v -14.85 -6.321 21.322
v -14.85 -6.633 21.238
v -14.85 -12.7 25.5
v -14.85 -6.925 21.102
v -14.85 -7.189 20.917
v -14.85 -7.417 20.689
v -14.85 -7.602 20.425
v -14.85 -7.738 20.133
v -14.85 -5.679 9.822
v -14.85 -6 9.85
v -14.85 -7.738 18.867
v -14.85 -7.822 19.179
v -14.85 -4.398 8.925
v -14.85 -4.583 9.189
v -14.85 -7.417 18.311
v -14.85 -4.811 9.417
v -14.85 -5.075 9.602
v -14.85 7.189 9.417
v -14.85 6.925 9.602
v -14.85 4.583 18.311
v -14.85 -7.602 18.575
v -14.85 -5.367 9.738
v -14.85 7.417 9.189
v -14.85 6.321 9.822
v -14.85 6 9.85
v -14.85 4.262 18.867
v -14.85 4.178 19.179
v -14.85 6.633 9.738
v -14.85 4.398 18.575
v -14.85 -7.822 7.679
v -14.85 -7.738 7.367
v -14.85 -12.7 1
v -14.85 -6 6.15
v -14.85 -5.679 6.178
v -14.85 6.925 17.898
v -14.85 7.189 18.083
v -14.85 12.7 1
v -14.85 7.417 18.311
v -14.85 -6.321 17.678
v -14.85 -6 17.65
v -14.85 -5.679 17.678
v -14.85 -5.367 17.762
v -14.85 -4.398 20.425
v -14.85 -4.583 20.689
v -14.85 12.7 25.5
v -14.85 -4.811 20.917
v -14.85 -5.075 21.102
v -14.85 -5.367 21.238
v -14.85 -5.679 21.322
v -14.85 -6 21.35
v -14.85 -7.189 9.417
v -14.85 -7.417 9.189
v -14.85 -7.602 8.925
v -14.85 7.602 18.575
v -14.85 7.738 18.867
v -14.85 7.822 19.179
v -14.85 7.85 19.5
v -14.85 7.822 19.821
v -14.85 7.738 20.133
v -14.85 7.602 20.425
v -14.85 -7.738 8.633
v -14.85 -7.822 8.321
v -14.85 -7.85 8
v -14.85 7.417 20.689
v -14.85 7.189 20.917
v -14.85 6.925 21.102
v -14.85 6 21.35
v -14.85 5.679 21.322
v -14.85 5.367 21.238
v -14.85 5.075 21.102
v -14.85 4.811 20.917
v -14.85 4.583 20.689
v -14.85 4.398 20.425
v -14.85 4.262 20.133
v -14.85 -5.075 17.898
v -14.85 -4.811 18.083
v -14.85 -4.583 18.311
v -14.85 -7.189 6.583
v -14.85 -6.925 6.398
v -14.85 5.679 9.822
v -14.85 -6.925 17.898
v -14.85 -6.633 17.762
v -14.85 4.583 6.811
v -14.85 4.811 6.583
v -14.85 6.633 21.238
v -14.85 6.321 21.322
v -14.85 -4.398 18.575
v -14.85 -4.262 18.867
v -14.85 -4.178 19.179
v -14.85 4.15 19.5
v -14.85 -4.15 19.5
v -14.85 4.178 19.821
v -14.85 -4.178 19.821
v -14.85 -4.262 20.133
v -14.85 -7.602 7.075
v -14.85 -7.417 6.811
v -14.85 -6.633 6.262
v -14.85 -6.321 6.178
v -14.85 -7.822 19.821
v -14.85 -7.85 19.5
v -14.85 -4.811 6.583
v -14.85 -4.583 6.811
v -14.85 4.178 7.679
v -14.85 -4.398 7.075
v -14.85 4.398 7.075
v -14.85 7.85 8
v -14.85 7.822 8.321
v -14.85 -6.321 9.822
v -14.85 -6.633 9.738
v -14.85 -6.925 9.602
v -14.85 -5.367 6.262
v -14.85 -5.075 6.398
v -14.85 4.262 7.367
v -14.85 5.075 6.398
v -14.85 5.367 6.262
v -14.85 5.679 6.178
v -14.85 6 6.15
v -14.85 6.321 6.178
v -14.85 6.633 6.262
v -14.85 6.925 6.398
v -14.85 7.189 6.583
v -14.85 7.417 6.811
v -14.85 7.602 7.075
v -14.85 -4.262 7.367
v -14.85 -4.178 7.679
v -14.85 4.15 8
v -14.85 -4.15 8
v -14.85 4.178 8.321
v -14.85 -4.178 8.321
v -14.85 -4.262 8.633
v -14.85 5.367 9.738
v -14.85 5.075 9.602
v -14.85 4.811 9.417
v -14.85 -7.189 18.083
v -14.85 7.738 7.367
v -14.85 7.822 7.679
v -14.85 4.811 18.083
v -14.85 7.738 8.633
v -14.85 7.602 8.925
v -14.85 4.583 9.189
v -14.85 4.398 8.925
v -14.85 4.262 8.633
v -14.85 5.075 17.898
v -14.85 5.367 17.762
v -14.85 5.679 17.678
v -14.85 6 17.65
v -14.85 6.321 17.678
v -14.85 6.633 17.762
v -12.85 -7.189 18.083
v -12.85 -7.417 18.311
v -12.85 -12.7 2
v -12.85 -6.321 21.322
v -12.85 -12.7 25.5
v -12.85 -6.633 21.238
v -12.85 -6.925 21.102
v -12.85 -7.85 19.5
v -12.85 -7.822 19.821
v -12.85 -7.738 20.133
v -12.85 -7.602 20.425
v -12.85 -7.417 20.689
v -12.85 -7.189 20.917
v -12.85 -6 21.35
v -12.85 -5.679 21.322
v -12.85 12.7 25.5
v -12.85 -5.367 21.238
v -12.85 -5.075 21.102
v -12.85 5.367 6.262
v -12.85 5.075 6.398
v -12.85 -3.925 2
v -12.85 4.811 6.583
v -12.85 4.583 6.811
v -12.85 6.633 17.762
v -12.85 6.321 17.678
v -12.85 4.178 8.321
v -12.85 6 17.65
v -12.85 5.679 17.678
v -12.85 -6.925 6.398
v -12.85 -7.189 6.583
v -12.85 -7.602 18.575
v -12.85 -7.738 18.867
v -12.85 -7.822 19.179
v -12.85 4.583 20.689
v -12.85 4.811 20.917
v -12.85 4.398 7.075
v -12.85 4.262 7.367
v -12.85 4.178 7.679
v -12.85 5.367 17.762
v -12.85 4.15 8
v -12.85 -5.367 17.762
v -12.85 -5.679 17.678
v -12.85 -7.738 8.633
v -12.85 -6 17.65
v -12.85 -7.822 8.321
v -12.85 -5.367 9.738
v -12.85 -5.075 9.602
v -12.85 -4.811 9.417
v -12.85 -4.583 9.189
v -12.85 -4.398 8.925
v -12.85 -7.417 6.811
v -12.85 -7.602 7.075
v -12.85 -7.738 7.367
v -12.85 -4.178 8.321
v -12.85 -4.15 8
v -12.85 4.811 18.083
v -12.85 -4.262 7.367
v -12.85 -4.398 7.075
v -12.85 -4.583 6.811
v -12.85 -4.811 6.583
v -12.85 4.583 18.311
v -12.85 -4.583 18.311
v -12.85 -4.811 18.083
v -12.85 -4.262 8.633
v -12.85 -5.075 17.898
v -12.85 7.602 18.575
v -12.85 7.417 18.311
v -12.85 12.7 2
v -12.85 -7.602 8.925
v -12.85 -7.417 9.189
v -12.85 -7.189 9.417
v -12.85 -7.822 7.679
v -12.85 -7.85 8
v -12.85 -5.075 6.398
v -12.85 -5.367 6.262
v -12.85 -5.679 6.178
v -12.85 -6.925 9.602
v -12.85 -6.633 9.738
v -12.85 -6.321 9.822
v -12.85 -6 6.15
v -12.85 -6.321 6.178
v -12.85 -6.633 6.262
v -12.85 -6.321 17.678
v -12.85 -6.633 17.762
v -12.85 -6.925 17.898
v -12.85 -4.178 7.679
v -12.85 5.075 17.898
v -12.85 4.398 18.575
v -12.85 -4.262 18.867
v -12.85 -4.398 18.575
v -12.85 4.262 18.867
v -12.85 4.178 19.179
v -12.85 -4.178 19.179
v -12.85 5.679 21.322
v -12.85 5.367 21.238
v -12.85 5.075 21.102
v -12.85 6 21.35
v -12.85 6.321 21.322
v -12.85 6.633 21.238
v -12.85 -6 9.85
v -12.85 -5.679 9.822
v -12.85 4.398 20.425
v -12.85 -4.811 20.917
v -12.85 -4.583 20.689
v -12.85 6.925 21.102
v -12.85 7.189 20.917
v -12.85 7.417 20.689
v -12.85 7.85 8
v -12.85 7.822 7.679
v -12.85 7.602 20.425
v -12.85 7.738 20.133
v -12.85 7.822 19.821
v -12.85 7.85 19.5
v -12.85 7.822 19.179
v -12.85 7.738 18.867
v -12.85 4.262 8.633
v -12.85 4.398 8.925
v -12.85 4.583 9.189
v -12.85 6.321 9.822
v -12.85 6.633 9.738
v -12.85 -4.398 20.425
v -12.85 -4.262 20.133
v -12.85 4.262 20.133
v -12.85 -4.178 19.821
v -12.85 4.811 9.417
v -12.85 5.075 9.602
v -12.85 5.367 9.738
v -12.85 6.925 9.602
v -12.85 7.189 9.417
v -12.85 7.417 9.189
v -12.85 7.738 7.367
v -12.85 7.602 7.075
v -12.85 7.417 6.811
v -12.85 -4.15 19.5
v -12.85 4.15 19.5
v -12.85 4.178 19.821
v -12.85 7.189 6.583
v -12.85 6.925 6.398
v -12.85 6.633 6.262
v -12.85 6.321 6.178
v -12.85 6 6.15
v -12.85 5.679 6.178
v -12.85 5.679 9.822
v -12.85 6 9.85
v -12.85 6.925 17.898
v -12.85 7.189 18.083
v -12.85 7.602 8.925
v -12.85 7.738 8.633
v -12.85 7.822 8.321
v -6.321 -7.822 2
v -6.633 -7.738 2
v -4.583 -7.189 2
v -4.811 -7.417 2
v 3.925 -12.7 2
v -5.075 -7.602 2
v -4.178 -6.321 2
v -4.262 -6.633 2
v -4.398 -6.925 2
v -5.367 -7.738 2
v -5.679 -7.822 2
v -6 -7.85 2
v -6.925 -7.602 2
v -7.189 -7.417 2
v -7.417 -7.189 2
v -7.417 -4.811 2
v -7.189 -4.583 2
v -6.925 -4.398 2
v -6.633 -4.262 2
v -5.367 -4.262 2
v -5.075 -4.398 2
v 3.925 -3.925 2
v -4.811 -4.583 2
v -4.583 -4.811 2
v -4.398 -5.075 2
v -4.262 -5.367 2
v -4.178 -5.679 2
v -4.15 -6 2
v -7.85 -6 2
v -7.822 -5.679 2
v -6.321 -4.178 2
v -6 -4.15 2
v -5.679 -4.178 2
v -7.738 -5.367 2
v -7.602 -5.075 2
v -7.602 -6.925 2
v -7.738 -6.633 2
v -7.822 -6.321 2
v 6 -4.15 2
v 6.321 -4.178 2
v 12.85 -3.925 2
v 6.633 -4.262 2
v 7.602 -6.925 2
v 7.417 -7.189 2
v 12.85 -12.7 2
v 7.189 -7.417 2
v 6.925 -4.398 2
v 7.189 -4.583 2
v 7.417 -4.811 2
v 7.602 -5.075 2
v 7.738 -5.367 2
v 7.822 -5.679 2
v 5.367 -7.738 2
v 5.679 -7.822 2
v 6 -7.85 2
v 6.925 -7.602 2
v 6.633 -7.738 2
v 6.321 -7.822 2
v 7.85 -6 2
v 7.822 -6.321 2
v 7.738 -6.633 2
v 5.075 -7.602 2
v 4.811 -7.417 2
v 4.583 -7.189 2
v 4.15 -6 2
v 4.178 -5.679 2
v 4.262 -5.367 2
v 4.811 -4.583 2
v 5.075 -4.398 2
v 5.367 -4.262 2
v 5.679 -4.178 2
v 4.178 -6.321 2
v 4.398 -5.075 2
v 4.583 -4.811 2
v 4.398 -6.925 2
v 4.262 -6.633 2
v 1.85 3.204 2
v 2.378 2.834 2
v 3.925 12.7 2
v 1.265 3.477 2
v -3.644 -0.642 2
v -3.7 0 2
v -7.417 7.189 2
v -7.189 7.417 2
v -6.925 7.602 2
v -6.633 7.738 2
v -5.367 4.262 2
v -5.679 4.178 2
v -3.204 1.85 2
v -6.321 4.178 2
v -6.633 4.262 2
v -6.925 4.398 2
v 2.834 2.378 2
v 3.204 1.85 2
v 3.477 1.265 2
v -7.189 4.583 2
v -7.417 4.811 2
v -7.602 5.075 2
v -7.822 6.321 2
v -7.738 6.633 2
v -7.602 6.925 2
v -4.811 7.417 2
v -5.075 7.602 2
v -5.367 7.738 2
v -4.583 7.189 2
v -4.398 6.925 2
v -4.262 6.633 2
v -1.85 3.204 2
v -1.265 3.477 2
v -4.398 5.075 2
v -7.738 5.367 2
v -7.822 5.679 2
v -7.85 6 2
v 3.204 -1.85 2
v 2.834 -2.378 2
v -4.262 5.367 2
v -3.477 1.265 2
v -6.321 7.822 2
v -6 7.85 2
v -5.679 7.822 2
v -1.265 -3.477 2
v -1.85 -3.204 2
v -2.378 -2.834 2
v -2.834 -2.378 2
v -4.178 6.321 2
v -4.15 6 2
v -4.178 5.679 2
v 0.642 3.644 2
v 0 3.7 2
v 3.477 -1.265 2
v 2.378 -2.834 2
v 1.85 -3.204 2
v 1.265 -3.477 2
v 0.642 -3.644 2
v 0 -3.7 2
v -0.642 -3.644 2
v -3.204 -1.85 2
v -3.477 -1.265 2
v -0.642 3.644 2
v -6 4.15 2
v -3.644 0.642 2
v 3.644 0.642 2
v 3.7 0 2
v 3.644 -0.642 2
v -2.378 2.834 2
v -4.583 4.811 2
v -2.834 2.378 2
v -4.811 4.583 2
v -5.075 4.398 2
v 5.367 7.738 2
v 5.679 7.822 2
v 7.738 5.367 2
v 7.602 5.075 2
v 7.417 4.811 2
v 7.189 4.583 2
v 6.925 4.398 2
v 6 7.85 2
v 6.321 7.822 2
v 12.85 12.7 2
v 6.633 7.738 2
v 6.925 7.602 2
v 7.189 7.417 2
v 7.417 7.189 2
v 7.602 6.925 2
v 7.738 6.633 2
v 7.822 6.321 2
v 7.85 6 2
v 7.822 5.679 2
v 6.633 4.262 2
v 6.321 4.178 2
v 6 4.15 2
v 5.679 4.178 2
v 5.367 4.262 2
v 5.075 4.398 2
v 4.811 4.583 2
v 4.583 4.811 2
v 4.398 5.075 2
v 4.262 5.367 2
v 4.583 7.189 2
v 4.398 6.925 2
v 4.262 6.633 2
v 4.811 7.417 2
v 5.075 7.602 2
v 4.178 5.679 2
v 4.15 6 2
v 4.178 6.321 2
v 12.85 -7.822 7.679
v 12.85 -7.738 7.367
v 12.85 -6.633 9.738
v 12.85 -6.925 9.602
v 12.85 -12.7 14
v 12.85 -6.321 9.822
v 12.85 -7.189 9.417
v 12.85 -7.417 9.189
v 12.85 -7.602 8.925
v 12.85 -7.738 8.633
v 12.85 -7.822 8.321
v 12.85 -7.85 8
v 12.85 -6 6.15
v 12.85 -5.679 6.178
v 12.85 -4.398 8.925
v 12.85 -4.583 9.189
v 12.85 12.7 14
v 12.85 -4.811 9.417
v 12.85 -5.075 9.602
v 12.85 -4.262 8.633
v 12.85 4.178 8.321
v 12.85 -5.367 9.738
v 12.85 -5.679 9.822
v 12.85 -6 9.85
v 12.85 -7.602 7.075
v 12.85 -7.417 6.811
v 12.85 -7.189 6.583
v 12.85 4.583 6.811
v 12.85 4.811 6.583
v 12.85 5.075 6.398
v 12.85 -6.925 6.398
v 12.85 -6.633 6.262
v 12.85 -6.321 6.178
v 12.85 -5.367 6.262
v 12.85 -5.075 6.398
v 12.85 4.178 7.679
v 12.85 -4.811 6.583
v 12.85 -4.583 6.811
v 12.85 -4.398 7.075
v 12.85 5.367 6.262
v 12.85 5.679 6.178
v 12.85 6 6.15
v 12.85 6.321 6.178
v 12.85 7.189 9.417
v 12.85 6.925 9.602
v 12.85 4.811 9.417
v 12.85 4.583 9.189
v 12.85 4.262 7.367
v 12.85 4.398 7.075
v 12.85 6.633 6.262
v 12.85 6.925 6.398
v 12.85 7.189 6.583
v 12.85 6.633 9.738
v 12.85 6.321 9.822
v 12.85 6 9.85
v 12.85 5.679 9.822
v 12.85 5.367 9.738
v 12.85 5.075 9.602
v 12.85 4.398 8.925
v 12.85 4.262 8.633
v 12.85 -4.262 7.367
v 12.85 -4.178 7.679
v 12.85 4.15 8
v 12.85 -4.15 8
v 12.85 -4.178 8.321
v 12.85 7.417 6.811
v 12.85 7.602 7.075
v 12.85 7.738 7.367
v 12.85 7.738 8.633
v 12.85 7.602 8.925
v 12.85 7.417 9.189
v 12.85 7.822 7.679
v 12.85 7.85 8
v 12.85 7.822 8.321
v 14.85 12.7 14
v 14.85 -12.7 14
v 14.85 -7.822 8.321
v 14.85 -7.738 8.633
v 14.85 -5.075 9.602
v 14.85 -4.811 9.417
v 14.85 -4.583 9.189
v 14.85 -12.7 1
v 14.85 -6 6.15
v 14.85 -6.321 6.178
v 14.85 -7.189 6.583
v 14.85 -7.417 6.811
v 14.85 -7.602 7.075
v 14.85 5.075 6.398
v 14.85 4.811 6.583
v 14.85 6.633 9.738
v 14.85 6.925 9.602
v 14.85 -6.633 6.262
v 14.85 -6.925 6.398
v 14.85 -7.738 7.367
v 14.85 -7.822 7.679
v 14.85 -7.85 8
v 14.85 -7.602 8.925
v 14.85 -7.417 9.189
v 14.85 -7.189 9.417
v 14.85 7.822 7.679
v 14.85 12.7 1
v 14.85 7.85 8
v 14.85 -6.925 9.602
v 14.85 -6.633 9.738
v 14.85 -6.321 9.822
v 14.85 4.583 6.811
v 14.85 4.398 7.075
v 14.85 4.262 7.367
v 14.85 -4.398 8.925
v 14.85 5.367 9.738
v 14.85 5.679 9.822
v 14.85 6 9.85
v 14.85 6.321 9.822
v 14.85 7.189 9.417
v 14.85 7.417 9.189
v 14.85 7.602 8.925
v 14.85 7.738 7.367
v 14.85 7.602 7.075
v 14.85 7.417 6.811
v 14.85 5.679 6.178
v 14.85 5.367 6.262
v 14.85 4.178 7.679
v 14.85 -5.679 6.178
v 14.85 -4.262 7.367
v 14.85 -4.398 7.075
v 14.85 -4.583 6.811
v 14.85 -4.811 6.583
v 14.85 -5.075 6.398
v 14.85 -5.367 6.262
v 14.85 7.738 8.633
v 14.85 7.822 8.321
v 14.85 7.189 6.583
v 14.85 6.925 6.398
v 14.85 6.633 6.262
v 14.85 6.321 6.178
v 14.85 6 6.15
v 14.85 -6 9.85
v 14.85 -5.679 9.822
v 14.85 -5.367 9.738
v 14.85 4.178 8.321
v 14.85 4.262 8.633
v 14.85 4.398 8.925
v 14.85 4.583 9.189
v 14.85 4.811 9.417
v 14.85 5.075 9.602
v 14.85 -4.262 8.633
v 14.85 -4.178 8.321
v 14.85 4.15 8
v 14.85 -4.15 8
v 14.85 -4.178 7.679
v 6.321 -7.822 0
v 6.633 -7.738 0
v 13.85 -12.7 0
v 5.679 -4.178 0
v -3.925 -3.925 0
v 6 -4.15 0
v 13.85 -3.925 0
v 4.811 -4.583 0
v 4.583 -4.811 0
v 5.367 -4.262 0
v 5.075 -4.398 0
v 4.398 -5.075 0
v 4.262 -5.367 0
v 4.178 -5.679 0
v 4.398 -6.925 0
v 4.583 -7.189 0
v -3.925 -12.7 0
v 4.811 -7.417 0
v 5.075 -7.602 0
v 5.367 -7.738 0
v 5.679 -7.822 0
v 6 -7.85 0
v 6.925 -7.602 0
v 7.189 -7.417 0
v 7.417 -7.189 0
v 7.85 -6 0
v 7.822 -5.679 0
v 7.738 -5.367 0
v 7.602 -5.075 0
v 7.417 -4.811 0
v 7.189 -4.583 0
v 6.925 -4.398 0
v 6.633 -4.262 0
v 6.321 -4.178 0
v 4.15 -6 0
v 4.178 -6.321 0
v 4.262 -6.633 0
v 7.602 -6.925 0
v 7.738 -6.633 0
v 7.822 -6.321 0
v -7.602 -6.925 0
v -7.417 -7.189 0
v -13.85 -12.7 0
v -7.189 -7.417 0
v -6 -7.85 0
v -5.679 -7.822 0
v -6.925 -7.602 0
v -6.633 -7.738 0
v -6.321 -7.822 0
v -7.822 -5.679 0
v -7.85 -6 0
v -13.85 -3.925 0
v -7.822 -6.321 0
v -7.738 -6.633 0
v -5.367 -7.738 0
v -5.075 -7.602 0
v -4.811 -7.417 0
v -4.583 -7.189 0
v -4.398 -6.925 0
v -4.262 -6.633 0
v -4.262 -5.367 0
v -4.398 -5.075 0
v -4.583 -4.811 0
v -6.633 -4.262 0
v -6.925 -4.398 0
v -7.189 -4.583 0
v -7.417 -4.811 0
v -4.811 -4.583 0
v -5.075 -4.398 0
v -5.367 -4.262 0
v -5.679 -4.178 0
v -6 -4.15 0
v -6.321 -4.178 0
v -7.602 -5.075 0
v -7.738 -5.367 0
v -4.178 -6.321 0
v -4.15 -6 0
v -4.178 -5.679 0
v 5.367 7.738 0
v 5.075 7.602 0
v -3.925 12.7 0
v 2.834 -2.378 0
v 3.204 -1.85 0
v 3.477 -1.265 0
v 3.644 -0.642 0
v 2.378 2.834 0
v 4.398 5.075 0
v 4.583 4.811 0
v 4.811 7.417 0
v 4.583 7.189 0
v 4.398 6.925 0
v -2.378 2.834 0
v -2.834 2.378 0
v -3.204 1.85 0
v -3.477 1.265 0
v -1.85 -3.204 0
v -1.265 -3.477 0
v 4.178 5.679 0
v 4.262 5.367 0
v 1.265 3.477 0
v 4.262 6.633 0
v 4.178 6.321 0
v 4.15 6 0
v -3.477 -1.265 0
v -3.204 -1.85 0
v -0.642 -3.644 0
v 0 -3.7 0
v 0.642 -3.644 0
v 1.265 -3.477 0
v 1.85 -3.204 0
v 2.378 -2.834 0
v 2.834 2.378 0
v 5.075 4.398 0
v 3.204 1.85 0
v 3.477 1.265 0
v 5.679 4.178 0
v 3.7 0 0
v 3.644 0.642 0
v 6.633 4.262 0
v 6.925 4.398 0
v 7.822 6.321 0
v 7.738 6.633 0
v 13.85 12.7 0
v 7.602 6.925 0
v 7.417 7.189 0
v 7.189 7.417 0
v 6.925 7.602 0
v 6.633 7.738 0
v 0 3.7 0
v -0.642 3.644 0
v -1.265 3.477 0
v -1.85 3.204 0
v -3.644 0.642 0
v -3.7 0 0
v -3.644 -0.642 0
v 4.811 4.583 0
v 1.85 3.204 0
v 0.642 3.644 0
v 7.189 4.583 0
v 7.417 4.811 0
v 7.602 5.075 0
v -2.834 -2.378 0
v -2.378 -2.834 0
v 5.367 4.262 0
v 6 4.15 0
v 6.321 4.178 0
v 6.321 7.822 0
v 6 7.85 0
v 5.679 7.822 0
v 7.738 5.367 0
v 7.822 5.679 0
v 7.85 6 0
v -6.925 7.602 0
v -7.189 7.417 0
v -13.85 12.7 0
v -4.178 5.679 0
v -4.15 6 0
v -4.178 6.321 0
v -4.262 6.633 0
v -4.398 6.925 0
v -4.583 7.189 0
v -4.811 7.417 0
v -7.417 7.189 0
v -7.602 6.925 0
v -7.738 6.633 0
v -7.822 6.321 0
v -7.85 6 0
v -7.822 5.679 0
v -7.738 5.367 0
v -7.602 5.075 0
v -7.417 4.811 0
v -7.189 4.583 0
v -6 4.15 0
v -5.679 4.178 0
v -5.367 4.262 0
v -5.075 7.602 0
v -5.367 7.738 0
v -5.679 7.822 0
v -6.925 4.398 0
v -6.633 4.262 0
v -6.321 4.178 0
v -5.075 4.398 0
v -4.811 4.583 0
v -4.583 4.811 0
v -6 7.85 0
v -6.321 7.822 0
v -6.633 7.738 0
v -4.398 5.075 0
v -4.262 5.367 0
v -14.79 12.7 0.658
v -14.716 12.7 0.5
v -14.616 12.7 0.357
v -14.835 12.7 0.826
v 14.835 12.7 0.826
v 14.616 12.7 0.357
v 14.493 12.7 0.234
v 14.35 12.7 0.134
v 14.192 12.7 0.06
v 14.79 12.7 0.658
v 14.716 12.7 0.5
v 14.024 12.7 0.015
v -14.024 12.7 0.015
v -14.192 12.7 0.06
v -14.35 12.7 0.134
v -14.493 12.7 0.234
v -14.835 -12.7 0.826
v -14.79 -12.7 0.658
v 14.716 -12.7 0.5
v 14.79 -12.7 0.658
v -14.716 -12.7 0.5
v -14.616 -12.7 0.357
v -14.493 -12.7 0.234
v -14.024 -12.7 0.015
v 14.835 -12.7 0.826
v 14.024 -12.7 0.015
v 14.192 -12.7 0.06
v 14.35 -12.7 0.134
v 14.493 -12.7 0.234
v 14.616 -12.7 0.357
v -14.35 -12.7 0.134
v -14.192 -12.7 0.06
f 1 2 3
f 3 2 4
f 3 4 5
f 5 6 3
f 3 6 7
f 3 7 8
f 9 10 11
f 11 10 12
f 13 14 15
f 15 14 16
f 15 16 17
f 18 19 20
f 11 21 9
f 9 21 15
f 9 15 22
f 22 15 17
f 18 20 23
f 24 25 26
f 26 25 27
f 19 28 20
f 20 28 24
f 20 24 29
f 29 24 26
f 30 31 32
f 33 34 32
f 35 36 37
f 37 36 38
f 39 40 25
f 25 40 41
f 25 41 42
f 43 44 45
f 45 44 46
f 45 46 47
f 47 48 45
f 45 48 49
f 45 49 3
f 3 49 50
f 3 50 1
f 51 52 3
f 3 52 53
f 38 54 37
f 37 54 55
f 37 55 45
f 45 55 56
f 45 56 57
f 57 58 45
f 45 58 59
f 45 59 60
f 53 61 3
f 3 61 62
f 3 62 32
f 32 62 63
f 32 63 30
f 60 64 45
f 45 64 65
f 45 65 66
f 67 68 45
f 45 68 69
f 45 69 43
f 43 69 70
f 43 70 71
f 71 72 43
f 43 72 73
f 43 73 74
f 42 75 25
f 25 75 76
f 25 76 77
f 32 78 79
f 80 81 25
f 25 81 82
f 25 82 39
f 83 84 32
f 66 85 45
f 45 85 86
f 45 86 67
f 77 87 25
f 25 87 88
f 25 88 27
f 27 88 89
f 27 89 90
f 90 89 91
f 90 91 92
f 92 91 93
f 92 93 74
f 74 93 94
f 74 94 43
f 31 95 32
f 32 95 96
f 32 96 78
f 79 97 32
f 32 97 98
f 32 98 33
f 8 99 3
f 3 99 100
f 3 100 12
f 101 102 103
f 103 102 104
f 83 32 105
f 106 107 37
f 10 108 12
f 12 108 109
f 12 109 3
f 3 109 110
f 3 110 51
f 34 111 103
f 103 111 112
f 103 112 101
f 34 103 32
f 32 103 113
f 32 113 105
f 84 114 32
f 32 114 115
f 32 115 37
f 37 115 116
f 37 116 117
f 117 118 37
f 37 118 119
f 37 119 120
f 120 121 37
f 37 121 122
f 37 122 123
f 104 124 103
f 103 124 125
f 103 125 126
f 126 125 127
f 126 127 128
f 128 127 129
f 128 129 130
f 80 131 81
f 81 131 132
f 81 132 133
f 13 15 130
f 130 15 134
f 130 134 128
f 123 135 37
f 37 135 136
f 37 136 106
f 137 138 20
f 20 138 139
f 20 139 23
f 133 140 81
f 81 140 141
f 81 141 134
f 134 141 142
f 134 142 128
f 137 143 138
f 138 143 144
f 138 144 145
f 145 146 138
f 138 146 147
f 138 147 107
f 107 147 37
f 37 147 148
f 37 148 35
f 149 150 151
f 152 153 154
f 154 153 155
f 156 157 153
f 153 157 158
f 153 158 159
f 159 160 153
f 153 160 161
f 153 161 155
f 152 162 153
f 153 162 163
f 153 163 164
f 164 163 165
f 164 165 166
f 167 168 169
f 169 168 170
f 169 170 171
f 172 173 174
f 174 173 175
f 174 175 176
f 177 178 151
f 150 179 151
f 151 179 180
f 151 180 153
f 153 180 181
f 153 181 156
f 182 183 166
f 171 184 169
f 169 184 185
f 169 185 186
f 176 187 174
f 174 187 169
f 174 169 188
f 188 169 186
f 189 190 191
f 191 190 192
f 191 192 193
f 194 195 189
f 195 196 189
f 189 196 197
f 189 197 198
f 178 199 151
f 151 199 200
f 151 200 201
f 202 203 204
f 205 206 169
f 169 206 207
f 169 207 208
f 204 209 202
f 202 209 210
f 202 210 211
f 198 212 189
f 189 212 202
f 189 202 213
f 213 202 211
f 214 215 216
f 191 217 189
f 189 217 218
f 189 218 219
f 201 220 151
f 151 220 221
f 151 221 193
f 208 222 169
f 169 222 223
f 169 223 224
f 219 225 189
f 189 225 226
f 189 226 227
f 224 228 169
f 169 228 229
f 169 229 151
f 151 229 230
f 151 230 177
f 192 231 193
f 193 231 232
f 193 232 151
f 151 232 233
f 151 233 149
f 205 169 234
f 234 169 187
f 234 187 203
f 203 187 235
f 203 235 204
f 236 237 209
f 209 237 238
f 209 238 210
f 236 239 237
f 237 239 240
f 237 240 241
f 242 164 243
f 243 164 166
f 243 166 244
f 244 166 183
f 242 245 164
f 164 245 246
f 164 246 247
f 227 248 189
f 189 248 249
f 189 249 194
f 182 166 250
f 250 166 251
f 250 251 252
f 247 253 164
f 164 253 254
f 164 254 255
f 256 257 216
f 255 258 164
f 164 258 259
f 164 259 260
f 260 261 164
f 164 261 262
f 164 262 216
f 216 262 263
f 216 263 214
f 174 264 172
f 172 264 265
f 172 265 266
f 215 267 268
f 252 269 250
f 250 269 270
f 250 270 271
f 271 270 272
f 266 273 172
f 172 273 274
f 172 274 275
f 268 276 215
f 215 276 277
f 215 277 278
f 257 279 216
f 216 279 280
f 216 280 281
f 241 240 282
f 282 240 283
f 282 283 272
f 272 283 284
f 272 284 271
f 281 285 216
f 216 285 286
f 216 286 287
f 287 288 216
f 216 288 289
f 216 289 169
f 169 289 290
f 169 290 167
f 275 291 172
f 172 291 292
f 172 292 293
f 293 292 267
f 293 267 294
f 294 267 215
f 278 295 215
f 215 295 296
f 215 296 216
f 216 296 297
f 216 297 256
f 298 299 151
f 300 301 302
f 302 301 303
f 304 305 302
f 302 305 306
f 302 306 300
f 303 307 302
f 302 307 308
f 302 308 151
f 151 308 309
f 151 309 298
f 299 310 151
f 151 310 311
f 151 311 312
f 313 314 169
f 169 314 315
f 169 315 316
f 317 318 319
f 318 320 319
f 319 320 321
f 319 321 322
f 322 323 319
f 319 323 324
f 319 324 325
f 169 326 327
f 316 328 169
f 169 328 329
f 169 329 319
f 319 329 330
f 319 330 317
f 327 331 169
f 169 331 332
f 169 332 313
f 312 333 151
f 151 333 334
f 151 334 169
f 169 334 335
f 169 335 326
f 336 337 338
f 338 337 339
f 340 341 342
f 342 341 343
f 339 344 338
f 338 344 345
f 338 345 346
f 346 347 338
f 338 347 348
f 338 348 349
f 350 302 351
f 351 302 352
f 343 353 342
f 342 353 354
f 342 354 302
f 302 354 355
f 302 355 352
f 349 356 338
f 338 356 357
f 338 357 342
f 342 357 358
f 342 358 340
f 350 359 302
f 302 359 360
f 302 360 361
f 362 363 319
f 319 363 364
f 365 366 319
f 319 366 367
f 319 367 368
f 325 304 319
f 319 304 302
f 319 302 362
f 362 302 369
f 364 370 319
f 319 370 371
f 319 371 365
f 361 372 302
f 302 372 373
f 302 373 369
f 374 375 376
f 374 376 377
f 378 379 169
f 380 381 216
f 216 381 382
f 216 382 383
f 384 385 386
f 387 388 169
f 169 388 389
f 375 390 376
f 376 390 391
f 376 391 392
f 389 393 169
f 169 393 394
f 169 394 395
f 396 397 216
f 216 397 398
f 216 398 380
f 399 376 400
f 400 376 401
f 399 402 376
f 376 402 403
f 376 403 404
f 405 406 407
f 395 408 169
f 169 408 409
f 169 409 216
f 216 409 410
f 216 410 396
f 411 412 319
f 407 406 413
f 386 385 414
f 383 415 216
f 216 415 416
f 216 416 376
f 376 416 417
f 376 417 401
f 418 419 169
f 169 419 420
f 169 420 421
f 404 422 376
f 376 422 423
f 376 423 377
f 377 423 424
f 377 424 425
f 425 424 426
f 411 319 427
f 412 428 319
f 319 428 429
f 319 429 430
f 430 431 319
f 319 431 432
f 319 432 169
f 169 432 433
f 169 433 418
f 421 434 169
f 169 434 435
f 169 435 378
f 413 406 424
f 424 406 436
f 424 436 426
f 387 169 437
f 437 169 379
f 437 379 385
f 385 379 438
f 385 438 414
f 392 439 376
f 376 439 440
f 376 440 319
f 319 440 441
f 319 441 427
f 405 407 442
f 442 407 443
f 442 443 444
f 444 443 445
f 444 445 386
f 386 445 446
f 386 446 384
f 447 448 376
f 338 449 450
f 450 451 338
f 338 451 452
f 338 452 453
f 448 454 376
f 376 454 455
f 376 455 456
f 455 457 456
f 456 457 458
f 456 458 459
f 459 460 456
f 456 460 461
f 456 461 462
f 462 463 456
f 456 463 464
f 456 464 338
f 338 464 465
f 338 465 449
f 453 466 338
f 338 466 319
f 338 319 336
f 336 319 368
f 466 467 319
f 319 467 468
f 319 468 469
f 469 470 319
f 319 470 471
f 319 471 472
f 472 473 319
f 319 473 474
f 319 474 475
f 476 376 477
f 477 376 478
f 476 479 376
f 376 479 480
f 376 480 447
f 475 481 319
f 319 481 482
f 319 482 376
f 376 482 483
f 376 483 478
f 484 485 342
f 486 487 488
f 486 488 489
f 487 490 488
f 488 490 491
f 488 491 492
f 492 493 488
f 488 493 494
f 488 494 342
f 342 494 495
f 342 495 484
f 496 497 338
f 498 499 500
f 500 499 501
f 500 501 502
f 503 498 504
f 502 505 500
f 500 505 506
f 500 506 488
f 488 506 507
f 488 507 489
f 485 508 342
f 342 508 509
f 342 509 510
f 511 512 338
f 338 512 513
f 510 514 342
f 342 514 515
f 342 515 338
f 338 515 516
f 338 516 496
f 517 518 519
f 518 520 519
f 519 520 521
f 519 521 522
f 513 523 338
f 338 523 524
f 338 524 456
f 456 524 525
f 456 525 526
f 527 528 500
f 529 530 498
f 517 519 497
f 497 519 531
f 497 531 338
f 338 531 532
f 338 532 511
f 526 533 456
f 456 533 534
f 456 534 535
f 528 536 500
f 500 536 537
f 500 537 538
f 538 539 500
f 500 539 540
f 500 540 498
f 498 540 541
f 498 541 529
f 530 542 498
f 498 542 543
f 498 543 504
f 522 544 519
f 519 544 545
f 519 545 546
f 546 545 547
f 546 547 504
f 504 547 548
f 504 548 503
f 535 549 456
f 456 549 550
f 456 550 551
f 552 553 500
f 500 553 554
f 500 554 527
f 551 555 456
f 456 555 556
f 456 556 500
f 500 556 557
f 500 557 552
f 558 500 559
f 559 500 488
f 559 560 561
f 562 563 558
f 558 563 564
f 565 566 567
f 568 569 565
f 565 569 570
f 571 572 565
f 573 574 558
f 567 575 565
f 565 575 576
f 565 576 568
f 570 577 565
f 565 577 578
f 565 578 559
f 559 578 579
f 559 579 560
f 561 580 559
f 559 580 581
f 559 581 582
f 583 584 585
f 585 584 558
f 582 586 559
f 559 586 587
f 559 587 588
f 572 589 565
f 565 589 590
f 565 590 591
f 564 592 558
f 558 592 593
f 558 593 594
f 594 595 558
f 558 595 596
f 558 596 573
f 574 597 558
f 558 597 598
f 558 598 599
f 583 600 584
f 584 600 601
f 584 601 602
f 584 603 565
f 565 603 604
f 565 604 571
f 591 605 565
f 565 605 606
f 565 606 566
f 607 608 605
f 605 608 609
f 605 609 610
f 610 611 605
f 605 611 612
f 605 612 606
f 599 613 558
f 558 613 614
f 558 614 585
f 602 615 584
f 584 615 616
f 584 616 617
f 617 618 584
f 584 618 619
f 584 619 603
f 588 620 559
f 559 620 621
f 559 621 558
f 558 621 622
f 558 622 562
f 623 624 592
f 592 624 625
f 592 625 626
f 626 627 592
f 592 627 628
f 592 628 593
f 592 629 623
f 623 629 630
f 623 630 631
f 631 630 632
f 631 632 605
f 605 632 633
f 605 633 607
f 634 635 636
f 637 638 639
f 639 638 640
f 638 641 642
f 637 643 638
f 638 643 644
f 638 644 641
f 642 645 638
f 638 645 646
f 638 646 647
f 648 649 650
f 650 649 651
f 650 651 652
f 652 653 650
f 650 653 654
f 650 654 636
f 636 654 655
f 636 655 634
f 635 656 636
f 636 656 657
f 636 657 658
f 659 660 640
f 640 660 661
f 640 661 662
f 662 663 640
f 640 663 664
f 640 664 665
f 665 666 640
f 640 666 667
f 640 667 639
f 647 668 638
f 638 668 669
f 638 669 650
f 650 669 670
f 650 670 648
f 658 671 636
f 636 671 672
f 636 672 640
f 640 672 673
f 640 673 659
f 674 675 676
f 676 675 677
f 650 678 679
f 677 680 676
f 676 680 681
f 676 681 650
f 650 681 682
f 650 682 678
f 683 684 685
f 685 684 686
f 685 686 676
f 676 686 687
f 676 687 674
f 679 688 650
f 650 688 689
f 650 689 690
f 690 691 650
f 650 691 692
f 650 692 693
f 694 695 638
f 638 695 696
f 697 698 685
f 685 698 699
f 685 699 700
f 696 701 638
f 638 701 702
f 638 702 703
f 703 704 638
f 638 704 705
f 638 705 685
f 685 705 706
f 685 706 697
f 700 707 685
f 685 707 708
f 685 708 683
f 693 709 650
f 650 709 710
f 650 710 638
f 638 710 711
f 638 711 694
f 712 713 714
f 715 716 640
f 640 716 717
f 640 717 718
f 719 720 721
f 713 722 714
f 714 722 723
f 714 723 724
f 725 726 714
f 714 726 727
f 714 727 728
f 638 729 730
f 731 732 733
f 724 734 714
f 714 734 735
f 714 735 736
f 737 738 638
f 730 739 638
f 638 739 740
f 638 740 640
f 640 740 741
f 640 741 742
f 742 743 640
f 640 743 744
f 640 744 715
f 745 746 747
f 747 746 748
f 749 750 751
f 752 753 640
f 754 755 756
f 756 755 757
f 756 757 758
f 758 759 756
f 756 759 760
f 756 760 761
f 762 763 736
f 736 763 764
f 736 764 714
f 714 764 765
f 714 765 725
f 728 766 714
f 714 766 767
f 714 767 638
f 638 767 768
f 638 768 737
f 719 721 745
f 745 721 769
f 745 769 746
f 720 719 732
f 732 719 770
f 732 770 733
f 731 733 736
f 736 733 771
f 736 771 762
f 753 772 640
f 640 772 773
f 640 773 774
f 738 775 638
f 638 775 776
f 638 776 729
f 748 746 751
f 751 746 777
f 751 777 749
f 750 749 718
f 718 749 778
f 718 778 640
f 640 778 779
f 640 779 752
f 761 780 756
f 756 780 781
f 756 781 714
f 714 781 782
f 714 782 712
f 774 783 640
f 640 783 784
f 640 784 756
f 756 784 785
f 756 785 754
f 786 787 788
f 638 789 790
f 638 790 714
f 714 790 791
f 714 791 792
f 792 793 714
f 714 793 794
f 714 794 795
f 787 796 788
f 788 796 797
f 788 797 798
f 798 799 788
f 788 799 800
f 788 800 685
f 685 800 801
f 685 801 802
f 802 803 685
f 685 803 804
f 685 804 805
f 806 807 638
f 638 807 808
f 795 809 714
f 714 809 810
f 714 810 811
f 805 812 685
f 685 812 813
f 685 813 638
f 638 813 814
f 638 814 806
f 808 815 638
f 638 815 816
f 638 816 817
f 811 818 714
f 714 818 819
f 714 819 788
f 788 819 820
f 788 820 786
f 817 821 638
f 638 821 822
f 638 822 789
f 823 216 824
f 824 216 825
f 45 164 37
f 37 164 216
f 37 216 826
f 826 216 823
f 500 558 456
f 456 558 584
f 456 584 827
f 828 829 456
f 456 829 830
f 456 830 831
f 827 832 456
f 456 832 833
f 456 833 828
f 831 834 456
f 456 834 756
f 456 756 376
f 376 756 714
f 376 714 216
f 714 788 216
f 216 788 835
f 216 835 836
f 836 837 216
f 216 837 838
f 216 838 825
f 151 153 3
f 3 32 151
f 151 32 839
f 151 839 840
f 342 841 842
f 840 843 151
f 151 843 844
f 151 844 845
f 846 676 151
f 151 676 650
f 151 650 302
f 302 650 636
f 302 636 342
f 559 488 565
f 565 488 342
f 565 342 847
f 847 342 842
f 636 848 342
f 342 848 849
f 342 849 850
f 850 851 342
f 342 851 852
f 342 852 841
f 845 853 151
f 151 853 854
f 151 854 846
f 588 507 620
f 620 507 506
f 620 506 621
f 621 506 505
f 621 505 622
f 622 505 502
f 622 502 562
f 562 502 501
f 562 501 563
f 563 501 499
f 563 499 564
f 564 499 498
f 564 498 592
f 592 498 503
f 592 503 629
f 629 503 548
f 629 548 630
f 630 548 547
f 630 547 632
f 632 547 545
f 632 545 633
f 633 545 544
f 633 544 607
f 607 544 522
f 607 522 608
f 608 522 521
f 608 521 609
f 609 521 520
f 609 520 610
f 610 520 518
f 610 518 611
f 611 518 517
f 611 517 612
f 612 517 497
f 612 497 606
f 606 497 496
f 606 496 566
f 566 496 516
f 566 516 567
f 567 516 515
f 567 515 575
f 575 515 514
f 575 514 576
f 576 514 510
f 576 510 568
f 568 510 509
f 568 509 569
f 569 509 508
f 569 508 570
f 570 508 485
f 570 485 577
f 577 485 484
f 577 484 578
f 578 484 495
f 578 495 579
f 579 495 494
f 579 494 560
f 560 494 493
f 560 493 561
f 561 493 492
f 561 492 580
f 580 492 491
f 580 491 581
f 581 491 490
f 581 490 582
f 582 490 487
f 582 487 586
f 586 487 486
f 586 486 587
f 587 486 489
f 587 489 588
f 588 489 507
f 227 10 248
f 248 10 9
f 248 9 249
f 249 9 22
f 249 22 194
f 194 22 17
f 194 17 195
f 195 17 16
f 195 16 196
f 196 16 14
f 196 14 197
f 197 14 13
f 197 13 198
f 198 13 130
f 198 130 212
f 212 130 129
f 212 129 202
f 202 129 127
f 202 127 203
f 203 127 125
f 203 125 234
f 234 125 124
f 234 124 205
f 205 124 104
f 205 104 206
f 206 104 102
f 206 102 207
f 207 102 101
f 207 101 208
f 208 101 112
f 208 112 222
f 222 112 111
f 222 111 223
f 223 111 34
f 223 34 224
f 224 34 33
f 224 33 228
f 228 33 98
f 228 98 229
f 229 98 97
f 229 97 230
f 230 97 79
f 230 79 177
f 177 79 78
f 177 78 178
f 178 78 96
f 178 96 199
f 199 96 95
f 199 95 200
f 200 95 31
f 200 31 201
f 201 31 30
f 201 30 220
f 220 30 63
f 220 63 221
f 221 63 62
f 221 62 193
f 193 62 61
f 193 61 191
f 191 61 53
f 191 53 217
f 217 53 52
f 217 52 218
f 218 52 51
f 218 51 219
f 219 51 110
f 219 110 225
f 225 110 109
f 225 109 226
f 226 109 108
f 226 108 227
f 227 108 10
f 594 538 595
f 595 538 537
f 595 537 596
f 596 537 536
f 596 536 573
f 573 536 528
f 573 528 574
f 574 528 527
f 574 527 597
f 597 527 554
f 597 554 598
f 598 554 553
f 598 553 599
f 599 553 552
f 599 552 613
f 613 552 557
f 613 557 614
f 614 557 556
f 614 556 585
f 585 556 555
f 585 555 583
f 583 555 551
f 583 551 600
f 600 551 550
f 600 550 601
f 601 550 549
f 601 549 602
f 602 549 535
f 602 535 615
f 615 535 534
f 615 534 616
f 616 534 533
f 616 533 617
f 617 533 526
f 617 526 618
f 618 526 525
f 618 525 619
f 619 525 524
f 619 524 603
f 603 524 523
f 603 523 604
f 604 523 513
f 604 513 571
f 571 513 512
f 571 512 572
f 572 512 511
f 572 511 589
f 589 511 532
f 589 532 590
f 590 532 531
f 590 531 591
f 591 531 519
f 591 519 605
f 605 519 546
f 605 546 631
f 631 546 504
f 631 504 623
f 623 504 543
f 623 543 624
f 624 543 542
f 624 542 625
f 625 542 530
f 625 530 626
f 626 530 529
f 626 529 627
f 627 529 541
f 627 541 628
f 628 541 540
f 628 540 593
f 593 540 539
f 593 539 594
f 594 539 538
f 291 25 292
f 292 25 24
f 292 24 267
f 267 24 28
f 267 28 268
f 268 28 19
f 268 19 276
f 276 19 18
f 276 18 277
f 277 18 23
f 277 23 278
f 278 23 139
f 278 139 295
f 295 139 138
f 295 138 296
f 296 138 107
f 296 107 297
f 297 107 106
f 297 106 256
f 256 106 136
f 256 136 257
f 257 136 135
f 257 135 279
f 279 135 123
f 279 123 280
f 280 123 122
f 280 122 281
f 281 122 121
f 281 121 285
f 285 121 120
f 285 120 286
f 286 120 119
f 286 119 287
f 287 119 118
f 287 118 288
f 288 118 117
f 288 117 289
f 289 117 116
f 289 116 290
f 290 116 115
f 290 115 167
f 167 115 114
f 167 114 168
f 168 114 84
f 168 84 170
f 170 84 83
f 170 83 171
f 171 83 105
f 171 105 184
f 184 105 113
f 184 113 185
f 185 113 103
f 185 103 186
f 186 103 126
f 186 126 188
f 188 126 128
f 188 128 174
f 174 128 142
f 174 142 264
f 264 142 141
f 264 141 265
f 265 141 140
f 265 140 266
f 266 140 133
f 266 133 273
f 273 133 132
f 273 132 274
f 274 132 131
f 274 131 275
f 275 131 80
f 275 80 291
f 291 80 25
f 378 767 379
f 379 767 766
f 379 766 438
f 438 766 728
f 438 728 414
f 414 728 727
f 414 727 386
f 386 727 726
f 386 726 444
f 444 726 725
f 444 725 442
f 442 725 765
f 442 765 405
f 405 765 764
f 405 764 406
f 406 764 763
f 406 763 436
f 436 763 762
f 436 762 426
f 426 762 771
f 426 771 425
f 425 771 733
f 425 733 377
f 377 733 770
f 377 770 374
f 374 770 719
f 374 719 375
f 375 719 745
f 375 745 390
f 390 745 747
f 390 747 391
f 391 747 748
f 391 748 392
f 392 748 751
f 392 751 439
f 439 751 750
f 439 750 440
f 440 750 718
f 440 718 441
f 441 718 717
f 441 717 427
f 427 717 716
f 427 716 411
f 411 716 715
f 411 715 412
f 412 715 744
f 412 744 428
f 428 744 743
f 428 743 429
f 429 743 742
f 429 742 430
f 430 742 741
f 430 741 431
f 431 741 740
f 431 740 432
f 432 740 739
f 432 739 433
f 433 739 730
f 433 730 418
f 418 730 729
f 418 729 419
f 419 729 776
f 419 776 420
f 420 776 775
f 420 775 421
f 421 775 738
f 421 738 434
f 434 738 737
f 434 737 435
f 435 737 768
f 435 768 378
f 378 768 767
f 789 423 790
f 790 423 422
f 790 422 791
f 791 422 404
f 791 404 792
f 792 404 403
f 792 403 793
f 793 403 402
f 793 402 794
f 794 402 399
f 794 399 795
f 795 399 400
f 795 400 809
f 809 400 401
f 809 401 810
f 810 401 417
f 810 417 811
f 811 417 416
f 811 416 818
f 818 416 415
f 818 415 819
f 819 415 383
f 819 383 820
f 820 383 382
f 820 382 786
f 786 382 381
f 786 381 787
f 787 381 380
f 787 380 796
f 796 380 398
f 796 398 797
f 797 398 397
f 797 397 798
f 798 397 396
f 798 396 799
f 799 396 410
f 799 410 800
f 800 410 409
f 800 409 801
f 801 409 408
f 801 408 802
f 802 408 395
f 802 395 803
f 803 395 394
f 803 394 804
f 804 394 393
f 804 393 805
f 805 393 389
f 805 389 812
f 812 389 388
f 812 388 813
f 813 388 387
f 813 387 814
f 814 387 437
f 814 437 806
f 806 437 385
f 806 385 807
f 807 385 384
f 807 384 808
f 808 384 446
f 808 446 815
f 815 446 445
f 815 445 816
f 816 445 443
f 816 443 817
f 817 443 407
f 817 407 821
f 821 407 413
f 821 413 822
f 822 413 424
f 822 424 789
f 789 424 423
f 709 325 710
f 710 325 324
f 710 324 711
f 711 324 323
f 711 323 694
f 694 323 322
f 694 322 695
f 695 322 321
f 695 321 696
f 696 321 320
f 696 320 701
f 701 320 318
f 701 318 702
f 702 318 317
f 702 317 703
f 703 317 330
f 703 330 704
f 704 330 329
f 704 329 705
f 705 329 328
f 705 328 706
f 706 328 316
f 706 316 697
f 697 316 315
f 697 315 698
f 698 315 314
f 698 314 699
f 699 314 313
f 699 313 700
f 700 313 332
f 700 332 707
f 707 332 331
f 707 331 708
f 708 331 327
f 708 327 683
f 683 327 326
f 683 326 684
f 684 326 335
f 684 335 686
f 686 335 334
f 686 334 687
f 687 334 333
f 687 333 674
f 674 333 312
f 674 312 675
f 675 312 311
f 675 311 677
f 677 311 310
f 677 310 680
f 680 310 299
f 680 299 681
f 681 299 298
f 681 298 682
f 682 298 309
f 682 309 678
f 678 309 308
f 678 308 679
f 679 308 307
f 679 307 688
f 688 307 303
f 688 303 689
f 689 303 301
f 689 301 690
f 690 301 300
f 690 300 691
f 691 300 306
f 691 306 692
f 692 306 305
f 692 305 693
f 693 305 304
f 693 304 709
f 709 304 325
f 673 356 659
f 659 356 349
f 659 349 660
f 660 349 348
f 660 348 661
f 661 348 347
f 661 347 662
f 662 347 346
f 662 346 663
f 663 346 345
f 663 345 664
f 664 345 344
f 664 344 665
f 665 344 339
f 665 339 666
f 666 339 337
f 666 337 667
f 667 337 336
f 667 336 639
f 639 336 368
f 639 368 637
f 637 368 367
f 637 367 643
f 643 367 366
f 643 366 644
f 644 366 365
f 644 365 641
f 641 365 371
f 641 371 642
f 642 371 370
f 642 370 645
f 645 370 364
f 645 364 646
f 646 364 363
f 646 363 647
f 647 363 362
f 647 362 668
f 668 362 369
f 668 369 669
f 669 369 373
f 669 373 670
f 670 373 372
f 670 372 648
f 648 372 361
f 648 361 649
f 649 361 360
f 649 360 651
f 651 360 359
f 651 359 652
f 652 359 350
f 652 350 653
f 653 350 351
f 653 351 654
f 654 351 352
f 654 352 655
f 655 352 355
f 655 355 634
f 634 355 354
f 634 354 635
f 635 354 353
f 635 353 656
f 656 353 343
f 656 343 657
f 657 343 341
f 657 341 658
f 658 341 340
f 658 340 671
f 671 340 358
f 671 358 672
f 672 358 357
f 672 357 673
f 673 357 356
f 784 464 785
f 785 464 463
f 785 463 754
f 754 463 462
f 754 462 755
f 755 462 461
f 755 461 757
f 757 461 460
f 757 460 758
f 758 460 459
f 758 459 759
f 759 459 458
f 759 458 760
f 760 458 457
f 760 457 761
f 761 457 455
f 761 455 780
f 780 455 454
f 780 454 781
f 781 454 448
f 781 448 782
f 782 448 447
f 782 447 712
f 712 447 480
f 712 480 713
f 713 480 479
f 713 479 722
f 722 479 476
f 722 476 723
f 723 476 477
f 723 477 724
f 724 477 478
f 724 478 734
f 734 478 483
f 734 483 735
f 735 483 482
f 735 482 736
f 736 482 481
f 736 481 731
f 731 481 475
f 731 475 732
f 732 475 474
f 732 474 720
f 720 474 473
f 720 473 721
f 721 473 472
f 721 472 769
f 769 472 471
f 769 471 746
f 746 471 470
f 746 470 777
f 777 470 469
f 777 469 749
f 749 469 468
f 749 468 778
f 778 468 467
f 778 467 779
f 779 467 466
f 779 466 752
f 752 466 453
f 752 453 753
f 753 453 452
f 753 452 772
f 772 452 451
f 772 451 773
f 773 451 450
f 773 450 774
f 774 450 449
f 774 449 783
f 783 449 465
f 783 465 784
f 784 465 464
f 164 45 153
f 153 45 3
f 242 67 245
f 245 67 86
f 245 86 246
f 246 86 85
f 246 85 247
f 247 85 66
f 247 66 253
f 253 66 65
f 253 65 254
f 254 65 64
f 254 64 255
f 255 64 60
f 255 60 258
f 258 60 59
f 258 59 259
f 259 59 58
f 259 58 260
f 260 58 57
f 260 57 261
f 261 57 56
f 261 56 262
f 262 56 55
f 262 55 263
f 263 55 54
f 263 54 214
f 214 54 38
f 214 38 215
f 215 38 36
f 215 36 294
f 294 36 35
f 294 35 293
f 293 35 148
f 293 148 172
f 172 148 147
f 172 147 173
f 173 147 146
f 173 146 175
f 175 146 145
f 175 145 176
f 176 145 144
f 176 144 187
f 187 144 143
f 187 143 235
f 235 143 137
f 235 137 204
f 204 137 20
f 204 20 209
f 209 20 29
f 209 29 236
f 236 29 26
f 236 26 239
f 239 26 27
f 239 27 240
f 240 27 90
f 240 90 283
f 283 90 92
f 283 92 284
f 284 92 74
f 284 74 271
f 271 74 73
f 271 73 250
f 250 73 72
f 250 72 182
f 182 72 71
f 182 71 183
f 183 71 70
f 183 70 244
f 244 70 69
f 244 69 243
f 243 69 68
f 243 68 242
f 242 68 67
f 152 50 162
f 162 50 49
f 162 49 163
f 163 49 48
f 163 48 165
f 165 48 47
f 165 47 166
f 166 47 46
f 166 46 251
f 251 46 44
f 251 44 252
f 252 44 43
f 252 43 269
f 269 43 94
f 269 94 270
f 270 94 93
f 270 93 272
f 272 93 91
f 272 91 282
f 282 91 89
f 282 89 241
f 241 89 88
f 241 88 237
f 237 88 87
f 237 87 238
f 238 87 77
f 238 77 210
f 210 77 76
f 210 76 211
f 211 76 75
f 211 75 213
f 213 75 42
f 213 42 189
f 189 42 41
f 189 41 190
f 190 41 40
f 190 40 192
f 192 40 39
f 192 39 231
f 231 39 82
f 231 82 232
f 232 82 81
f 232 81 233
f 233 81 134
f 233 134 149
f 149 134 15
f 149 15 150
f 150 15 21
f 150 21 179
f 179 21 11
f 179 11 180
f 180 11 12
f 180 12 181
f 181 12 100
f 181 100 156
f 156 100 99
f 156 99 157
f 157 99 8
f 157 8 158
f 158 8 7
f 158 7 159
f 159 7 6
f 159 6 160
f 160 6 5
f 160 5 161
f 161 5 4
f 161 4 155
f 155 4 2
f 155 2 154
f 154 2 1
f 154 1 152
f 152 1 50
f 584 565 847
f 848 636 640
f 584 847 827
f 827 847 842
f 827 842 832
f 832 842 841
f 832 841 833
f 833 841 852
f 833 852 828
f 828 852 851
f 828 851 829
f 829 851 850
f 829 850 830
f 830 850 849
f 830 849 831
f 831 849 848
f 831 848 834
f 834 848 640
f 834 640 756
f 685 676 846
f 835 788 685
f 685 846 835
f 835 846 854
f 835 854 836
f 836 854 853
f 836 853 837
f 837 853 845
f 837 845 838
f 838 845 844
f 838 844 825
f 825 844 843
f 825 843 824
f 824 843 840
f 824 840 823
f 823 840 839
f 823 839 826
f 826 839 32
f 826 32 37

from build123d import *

# Parameters (mm, degrees)
BOSS_EXTRUDE1_DEPTH = 12.7
SKETCH2_R           = 1.85
CUT_EXTRUDE1_DEPTH  = 30.7
SKETCH3_R           = 3.7
CUT_EXTRUDE2_DEPTH  = 15
SKETCH4_R           = 1.85
CUT_EXTRUDE3_DEPTH  = 3
SKETCH5_W           = 11.5
SKETCH5_H           = 25.4
SKETCH5_R           = 1.85
BOSS_EXTRUDE2_DEPTH = 2
FILLET1_R           = 1


with BuildPart() as part:
    # Sketch1 → Boss-Extrude1 (new body, symmetric)
    with BuildSketch(Plane(origin=(0, 0, 0), x_dir=(1, 0, 0), z_dir=(0, 1, 0))):
        Polygon((-14.85, 0), (14.85, 0), (14.85, -14), (12.85, -14), (12.85, -2), (-12.85, -2), (-12.85, -14), (-14.85, -14), align=None)
    extrude(amount=BOSS_EXTRUDE1_DEPTH, both=True)

    # Sketch2 → Cut-Extrude1 (cut, through all)
    with BuildSketch(Plane.ZY.offset(14.85)):
        with Locations((8, -6)):
            Circle(SKETCH2_R)
        with Locations((8, 6)):
            Circle(SKETCH2_R)
    extrude(amount=-CUT_EXTRUDE1_DEPTH, mode=Mode.SUBTRACT)

    # Sketch3 → Cut-Extrude2 (cut, through all)
    with BuildSketch(Plane(origin=(0, 0, 0), x_dir=(-1, 0, 0), z_dir=(0, 0, -1))):
        Circle(SKETCH3_R)
    extrude(amount=-CUT_EXTRUDE2_DEPTH, mode=Mode.SUBTRACT)

    # Sketch4 → Cut-Extrude3 (cut, through all)
    with BuildSketch(Plane.XY.offset(2)):
        with Locations((-6, 6)):
            Circle(SKETCH4_R)
        with Locations((-6, -6)):
            Circle(SKETCH4_R)
        with Locations((6, -6)):
            Circle(SKETCH4_R)
        with Locations((6, 6)):
            Circle(SKETCH4_R)
    extrude(amount=-CUT_EXTRUDE3_DEPTH, mode=Mode.SUBTRACT)

    # Sketch5 → Boss-Extrude2 (add)
    with BuildSketch(Plane(origin=(-14.85, 0, 0), x_dir=(0, 0, -1), z_dir=(1, 0, 0))):
        with Locations((-19.75, 0)):
            Rectangle(SKETCH5_W, SKETCH5_H)
        with Locations((-19.5, 6)):
            Circle(SKETCH5_R, mode=Mode.SUBTRACT)
        with Locations((-19.5, -6)):
            Circle(SKETCH5_R, mode=Mode.SUBTRACT)
    extrude(amount=BOSS_EXTRUDE2_DEPTH)

    # Fillet1
    fillet1_edges = [part.edges().sort_by_distance(p)[0] for p in [
        (-14.85, 0, 0),
        (14.85, 0, 0),
    ]]
    fillet(fillet1_edges, radius=FILLET1_R)


solid = part.part
